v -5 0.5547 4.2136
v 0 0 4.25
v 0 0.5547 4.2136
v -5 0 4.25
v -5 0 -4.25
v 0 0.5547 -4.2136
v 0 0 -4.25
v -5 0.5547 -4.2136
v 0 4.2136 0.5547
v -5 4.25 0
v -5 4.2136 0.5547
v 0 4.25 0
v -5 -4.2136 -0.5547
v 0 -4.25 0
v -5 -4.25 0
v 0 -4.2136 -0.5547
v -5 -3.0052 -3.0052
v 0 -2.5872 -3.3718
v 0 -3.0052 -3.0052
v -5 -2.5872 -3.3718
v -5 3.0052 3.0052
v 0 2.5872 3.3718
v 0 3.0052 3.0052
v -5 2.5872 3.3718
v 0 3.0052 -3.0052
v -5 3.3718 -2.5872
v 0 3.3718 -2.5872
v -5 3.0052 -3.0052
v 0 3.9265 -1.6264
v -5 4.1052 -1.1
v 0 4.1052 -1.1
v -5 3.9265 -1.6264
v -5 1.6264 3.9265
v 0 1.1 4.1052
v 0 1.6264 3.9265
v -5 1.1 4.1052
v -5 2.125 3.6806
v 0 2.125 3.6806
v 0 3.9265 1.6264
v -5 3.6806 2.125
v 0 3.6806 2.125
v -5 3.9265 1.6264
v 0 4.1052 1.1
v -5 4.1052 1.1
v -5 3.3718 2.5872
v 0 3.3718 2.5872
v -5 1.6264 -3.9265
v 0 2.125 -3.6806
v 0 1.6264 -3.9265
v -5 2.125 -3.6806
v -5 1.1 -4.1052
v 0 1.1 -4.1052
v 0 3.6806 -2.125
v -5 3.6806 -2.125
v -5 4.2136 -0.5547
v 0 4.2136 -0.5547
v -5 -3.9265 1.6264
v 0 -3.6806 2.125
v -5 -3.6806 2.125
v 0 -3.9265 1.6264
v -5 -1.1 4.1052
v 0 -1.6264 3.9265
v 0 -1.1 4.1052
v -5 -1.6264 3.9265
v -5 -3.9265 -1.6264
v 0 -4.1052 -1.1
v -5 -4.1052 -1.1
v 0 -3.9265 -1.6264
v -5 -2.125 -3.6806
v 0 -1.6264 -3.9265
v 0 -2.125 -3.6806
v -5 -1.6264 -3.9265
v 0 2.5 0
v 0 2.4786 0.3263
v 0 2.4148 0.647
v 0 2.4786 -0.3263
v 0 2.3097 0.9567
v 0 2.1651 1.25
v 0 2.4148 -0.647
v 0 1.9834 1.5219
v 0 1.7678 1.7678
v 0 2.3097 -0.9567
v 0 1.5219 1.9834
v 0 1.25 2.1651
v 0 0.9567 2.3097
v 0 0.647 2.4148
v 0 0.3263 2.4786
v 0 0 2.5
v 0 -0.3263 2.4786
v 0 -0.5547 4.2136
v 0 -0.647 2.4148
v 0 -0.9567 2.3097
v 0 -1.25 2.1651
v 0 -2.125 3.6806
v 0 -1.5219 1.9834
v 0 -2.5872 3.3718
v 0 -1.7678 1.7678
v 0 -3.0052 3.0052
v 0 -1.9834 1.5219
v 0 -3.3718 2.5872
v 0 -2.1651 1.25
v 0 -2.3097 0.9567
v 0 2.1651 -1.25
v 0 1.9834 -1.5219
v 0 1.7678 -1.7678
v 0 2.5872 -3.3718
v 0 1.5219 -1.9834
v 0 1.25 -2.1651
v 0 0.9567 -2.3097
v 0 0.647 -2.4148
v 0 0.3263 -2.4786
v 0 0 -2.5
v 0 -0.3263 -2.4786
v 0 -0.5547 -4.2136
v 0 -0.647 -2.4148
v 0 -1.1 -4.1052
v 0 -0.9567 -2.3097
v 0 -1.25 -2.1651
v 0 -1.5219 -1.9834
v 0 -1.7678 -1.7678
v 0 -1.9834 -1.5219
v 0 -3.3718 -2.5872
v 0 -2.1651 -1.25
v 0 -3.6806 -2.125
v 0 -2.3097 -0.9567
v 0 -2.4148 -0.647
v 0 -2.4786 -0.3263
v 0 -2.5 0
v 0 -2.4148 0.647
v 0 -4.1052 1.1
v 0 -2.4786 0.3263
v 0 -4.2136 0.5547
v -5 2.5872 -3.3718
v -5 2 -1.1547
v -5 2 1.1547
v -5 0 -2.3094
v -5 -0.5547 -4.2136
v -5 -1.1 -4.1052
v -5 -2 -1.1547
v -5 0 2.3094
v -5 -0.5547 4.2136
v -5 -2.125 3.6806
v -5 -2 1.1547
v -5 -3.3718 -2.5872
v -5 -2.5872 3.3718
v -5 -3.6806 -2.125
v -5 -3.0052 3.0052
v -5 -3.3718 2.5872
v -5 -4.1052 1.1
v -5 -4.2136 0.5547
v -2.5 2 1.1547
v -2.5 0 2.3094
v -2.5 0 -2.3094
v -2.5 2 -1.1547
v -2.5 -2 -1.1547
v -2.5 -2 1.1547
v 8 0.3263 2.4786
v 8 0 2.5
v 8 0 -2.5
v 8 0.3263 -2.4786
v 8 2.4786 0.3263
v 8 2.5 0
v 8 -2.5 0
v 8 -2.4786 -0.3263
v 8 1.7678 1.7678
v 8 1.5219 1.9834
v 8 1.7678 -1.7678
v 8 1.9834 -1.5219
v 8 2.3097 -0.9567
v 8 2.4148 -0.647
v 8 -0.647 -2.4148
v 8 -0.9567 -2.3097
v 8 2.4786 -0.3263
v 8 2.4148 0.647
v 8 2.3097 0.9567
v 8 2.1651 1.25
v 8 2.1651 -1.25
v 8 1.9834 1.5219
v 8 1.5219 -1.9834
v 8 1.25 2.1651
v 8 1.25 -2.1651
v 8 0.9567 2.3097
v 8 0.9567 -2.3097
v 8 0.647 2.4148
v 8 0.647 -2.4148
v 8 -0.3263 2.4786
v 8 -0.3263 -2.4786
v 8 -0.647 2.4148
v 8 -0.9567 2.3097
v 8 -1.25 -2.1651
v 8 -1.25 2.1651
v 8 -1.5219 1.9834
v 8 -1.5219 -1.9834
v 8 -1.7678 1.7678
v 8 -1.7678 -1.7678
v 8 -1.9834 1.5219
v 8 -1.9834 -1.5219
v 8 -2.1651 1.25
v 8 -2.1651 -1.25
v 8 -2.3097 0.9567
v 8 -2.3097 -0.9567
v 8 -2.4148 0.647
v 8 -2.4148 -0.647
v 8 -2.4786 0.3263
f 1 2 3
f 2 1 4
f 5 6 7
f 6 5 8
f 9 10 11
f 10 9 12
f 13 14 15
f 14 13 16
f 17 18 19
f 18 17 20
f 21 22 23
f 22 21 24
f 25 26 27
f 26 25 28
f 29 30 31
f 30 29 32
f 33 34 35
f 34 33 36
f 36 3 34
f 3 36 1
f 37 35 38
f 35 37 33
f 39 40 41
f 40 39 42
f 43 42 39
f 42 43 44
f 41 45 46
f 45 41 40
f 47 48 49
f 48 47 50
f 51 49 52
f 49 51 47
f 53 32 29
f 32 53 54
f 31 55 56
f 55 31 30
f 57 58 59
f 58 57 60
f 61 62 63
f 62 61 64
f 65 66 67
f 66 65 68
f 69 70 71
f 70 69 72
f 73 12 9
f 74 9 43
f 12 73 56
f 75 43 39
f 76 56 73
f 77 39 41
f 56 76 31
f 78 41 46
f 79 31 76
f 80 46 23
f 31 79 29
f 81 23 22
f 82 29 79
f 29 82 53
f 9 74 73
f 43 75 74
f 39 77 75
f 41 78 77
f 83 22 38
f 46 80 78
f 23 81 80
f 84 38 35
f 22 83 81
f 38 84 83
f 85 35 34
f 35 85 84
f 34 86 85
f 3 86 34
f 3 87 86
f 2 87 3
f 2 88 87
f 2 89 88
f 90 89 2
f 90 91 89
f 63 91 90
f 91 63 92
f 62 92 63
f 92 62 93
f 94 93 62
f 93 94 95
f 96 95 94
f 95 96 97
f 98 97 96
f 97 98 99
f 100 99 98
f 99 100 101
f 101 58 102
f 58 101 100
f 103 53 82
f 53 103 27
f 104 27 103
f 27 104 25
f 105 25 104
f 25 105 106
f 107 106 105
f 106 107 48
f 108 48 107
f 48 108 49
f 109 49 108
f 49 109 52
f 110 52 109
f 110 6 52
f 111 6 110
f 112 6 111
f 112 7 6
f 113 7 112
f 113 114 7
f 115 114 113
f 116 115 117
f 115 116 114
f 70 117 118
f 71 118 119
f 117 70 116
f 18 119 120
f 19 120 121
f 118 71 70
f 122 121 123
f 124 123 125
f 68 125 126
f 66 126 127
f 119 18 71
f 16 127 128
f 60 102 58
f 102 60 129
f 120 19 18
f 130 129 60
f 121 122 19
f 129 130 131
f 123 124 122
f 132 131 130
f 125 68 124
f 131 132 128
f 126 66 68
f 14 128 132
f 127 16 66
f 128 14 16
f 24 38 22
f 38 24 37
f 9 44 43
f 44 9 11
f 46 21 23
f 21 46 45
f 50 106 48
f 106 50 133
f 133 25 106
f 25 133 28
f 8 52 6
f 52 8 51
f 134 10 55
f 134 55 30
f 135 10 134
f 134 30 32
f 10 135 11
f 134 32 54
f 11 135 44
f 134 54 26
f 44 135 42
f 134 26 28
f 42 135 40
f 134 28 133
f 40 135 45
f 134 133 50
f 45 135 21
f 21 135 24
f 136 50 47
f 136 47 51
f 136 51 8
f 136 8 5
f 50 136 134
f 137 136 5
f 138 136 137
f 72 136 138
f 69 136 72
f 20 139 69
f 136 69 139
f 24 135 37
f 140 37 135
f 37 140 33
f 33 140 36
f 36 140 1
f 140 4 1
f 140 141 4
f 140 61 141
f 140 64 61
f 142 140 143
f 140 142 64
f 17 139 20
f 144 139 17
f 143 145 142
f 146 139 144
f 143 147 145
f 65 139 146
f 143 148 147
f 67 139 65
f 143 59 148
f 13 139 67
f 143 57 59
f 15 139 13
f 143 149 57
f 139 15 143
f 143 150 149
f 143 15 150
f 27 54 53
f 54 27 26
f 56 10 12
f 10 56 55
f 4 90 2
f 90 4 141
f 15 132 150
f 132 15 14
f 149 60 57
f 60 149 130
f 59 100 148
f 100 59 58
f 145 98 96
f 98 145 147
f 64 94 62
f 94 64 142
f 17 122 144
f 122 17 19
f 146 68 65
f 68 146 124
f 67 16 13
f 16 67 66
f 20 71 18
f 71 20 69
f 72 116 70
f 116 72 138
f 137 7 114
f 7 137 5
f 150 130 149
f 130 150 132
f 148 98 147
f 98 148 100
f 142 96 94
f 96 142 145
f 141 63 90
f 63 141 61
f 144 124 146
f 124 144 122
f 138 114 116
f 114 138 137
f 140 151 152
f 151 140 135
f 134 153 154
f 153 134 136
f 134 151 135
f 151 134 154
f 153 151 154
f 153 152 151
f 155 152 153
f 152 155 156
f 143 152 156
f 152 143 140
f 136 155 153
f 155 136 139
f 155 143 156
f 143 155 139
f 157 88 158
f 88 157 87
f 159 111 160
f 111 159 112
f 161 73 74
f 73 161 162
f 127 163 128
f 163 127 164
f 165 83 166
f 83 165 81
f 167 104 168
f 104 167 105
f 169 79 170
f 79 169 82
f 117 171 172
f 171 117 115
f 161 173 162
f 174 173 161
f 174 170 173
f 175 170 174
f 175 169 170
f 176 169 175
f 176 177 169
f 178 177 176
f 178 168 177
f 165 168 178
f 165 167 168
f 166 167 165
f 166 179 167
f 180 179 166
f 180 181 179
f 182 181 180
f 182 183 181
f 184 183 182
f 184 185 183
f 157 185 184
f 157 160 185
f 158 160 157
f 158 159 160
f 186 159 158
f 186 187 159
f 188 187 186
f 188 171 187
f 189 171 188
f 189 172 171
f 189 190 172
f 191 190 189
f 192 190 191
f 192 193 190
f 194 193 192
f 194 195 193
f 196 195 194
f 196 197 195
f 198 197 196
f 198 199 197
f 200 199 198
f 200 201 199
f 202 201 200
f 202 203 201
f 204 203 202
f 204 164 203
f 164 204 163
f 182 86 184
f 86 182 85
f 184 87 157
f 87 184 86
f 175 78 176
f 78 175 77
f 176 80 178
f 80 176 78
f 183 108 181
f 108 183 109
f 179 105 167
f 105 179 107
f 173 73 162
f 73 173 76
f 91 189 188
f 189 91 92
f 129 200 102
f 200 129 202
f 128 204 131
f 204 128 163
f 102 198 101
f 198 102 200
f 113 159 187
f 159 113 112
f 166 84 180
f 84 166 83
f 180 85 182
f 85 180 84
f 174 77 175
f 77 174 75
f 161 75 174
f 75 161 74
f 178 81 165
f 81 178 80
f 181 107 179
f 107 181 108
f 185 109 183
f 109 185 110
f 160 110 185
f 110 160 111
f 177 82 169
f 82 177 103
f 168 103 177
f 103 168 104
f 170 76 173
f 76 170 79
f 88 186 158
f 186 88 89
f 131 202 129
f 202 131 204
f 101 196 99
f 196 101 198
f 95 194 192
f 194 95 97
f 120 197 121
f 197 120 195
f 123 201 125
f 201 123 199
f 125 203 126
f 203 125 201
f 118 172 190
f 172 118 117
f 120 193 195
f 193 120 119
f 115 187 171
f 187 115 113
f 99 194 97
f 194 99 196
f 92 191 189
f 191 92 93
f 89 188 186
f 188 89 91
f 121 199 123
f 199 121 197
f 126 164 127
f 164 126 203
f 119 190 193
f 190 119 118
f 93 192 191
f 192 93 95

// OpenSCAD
// file: ../../lib/nutsnbolts/data-access.scad
// Norm Nuts and Bolts - a OpenSCAD library
// Copyright (C) 2012  Johannes Kneer

// This program is free software: you can redistribute it and/or modify
// it under the terms of the GNU General Public License as published by
// the Free Software Foundation, either version 3 of the License, or
// (at your option) any later version.

// This program is distributed in the hope that it will be useful,
// but WITHOUT ANY WARRANTY; without even the implied warranty of
// MERCHANTABILITY or FITNESS FOR A PARTICULAR PURPOSE.  See the
// GNU General Public License for more details.

// You should have received a copy of the GNU General Public License
// along with this program.  If not, see <http://www.gnu.org/licenses/>.


// DATABASE ACCESS FUNCTIONS AND CONSTANTS



// == CONSTANTS ==

// screw table access keys
_NB_S_DESC            = 0;
_NB_S_FAMKEY			    = 1;
_NB_S_LENGTH          = 2;
_NB_S_NOTHREAD_LENGTH = 3;

_NB_F_DESC			      = 0;
_NB_F_OUTER_DIA       = 1;
_NB_F_INNER_DIA       = 2;
_NB_F_LEAD            = 3;
_NB_F_KEY             = 4;
_NB_F_KEY_DEPTH       = 5;
_NB_F_HEAD_HEIGHT     = 6;
_NB_F_HEAD_DIA        = 7;
_NB_F_NUT_KEY         = 8;
_NB_F_NUT_HEIGHT      = 9;
_NB_F_PITCH_FINE      = 10;
_NB_F_PITCH_MEDIUM    = 11;
_NB_F_PITCH_COARSE    = 12;


// == FUNCTIONS ==

// _get_screw("descriptor")   with descriptor = M8x25
//   find the line for a general object in the data matrix

function _get_screw(n) = data_screw[search([n], data_screw)[0]];
function _get_screw_fam(n) = data_screw_fam[search([_get_screw(n)[_NB_S_FAMKEY]], data_screw_fam)[0]];

function _get_fam(n) = data_screw_fam[search([n], data_screw_fam)[0]];


// _get_XXXXX("descriptor") functions
// find a single property in the database

function _get_desc(n)        = _get_screw(n)[_NB_S_DESC];
function _get_famkey(n)         = _get_screw(n)[_NB_S_FAMKEY];
function _get_length(n)      = _get_screw(n)[_NB_S_LENGTH];
function _get_nt_length(n)   = _get_screw(n)[_NB_S_NOTHREAD_LENGTH];

function _get_outer_dia(n)   = _get_screw_fam(n)[_NB_F_OUTER_DIA];
function _get_inner_dia(n)   = _get_screw_fam(n)[_NB_F_INNER_DIA];
function _get_lead(n)        = _get_screw_fam(n)[_NB_F_LEAD];
function _get_head_height(n) = _get_screw_fam(n)[_NB_F_HEAD_HEIGHT];
function _get_head_dia(n)    = _get_screw_fam(n)[_NB_F_HEAD_DIA];
function _get_nut_key(n)     = _get_screw_fam(n)[_NB_F_NUT_KEY];
function _get_nut_height(n)  = _get_screw_fam(n)[_NB_F_NUT_HEIGHT];
function _get_fine_pitch(n)  = _get_screw_fam(n)[_NB_F_PITCH_FINE];
function _get_medium_pitch(n)  = _get_screw_fam(n)[_NB_F_PITCH_MEDIUM];
function _get_coarse_pitch(n)  = _get_screw_fam(n)[_NB_F_PITCH_COARSE];
// main file
/**********************************************************************************************************************
 **
 ** parts/vitamins/screw_M5x8.scad
 **
 ** This file renders a screw of the dimensions specified by the file name.
 **
 **********************************************************************************************************************/

include <../../lib/nutsnbolts/cyl_head_bolt.scad>;

$fn = 48;
rotate([0, -90, 0])
	screw("M5x8"); 
